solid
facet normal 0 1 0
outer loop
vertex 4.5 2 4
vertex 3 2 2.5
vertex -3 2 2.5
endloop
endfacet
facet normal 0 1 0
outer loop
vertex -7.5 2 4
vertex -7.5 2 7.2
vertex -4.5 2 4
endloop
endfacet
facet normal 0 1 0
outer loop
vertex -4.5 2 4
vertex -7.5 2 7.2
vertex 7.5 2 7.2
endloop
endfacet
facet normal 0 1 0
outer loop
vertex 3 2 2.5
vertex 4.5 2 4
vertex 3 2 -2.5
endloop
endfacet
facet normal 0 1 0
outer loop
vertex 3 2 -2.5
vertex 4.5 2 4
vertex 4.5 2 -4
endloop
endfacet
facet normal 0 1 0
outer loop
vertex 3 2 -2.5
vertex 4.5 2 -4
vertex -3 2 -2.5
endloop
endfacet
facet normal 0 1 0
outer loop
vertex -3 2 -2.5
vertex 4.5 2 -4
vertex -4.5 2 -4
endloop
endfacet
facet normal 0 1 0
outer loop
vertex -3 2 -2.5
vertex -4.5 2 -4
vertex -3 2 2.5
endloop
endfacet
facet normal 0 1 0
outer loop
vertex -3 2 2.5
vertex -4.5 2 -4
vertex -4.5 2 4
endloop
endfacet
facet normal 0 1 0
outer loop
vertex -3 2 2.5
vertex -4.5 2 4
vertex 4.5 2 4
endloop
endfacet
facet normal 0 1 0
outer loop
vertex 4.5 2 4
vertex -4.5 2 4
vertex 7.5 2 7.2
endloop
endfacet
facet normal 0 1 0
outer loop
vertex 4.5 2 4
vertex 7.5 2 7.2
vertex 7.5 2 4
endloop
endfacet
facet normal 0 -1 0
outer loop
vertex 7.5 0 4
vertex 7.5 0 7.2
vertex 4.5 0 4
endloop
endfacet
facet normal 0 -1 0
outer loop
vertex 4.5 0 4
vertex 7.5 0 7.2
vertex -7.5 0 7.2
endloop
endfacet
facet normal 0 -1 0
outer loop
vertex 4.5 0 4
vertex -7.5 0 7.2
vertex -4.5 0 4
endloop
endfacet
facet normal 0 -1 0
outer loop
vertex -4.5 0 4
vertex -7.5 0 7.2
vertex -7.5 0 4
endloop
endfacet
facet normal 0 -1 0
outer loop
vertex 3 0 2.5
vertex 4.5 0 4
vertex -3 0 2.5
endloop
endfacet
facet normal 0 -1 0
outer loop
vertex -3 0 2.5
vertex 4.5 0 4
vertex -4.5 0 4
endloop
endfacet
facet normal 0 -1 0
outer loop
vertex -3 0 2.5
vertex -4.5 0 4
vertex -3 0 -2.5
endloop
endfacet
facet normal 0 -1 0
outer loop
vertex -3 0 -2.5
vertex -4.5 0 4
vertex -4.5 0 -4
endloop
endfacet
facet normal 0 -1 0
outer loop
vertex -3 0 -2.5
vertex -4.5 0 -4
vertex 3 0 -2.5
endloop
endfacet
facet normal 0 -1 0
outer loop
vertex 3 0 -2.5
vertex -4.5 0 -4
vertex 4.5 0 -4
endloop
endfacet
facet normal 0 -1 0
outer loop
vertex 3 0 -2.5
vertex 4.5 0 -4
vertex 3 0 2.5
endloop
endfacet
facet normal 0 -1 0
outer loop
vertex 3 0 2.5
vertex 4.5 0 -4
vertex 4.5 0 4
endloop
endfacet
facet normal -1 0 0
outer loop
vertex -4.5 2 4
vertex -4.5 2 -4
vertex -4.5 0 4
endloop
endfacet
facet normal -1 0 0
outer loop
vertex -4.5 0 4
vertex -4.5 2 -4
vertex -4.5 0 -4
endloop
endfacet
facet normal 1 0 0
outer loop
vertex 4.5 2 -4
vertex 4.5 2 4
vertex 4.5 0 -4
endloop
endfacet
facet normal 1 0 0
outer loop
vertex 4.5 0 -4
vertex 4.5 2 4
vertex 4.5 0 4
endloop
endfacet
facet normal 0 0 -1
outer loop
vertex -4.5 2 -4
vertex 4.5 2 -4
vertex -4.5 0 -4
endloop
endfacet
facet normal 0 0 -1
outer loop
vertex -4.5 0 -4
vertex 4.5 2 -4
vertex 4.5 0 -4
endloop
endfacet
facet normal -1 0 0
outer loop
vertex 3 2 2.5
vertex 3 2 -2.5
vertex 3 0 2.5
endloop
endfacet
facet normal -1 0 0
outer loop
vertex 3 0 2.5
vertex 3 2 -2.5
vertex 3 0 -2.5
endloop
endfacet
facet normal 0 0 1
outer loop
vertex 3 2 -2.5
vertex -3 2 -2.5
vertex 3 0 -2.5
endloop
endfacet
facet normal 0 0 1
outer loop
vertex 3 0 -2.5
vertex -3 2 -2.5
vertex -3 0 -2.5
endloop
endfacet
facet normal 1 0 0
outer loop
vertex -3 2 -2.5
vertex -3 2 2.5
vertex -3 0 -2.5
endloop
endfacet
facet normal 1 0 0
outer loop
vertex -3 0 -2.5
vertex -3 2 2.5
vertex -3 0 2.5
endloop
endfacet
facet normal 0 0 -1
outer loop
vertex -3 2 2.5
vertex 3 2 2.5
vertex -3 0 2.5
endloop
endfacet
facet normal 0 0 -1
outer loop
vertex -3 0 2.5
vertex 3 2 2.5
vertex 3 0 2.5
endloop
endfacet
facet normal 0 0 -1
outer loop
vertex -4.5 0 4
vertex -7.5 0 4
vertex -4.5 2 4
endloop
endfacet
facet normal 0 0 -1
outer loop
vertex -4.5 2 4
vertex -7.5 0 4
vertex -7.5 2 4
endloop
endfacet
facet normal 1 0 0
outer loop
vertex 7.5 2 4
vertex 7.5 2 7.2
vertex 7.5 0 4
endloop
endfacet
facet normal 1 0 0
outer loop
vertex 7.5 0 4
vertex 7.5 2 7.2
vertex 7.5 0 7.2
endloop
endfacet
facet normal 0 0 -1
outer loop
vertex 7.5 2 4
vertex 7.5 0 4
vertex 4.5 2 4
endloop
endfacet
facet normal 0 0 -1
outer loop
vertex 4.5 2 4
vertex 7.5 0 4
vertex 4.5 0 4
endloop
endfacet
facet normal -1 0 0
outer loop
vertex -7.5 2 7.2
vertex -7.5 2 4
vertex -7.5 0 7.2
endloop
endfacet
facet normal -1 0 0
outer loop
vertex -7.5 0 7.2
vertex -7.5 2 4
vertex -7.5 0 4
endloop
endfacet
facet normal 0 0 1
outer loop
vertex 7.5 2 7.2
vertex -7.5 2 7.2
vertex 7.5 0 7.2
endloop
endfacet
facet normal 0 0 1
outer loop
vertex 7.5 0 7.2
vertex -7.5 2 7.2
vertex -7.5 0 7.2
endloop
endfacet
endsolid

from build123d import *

# Parameters (mm, degrees)
SKETCH1_W           = 9
SKETCH1_H           = 8
SKETCH1_W_2         = 6
SKETCH1_H_2         = 5
BOSS_EXTRUDE1_DEPTH = 2
SKETCH2_W           = 15
SKETCH2_H           = 3.2
BOSS_EXTRUDE3_DEPTH = 2


with BuildPart() as part:
    # Sketch1 → Boss-Extrude1 (new body)
    with BuildSketch(Plane(origin=(0, 0, 0), x_dir=(1, 0, 0), z_dir=(0, 1, 0))):
        Rectangle(SKETCH1_W, SKETCH1_H)
        Rectangle(SKETCH1_W_2, SKETCH1_H_2, mode=Mode.SUBTRACT)
    extrude(amount=BOSS_EXTRUDE1_DEPTH)

    # Sketch2 → Boss-Extrude3 (add)
    with BuildSketch(Plane(origin=(0, 0, 0), x_dir=(1, 0, 0), z_dir=(0, 1, 0))):
        with Locations((0, -5.6)):
            Rectangle(SKETCH2_W, SKETCH2_H)
    extrude(amount=BOSS_EXTRUDE3_DEPTH)


solid = part.part
